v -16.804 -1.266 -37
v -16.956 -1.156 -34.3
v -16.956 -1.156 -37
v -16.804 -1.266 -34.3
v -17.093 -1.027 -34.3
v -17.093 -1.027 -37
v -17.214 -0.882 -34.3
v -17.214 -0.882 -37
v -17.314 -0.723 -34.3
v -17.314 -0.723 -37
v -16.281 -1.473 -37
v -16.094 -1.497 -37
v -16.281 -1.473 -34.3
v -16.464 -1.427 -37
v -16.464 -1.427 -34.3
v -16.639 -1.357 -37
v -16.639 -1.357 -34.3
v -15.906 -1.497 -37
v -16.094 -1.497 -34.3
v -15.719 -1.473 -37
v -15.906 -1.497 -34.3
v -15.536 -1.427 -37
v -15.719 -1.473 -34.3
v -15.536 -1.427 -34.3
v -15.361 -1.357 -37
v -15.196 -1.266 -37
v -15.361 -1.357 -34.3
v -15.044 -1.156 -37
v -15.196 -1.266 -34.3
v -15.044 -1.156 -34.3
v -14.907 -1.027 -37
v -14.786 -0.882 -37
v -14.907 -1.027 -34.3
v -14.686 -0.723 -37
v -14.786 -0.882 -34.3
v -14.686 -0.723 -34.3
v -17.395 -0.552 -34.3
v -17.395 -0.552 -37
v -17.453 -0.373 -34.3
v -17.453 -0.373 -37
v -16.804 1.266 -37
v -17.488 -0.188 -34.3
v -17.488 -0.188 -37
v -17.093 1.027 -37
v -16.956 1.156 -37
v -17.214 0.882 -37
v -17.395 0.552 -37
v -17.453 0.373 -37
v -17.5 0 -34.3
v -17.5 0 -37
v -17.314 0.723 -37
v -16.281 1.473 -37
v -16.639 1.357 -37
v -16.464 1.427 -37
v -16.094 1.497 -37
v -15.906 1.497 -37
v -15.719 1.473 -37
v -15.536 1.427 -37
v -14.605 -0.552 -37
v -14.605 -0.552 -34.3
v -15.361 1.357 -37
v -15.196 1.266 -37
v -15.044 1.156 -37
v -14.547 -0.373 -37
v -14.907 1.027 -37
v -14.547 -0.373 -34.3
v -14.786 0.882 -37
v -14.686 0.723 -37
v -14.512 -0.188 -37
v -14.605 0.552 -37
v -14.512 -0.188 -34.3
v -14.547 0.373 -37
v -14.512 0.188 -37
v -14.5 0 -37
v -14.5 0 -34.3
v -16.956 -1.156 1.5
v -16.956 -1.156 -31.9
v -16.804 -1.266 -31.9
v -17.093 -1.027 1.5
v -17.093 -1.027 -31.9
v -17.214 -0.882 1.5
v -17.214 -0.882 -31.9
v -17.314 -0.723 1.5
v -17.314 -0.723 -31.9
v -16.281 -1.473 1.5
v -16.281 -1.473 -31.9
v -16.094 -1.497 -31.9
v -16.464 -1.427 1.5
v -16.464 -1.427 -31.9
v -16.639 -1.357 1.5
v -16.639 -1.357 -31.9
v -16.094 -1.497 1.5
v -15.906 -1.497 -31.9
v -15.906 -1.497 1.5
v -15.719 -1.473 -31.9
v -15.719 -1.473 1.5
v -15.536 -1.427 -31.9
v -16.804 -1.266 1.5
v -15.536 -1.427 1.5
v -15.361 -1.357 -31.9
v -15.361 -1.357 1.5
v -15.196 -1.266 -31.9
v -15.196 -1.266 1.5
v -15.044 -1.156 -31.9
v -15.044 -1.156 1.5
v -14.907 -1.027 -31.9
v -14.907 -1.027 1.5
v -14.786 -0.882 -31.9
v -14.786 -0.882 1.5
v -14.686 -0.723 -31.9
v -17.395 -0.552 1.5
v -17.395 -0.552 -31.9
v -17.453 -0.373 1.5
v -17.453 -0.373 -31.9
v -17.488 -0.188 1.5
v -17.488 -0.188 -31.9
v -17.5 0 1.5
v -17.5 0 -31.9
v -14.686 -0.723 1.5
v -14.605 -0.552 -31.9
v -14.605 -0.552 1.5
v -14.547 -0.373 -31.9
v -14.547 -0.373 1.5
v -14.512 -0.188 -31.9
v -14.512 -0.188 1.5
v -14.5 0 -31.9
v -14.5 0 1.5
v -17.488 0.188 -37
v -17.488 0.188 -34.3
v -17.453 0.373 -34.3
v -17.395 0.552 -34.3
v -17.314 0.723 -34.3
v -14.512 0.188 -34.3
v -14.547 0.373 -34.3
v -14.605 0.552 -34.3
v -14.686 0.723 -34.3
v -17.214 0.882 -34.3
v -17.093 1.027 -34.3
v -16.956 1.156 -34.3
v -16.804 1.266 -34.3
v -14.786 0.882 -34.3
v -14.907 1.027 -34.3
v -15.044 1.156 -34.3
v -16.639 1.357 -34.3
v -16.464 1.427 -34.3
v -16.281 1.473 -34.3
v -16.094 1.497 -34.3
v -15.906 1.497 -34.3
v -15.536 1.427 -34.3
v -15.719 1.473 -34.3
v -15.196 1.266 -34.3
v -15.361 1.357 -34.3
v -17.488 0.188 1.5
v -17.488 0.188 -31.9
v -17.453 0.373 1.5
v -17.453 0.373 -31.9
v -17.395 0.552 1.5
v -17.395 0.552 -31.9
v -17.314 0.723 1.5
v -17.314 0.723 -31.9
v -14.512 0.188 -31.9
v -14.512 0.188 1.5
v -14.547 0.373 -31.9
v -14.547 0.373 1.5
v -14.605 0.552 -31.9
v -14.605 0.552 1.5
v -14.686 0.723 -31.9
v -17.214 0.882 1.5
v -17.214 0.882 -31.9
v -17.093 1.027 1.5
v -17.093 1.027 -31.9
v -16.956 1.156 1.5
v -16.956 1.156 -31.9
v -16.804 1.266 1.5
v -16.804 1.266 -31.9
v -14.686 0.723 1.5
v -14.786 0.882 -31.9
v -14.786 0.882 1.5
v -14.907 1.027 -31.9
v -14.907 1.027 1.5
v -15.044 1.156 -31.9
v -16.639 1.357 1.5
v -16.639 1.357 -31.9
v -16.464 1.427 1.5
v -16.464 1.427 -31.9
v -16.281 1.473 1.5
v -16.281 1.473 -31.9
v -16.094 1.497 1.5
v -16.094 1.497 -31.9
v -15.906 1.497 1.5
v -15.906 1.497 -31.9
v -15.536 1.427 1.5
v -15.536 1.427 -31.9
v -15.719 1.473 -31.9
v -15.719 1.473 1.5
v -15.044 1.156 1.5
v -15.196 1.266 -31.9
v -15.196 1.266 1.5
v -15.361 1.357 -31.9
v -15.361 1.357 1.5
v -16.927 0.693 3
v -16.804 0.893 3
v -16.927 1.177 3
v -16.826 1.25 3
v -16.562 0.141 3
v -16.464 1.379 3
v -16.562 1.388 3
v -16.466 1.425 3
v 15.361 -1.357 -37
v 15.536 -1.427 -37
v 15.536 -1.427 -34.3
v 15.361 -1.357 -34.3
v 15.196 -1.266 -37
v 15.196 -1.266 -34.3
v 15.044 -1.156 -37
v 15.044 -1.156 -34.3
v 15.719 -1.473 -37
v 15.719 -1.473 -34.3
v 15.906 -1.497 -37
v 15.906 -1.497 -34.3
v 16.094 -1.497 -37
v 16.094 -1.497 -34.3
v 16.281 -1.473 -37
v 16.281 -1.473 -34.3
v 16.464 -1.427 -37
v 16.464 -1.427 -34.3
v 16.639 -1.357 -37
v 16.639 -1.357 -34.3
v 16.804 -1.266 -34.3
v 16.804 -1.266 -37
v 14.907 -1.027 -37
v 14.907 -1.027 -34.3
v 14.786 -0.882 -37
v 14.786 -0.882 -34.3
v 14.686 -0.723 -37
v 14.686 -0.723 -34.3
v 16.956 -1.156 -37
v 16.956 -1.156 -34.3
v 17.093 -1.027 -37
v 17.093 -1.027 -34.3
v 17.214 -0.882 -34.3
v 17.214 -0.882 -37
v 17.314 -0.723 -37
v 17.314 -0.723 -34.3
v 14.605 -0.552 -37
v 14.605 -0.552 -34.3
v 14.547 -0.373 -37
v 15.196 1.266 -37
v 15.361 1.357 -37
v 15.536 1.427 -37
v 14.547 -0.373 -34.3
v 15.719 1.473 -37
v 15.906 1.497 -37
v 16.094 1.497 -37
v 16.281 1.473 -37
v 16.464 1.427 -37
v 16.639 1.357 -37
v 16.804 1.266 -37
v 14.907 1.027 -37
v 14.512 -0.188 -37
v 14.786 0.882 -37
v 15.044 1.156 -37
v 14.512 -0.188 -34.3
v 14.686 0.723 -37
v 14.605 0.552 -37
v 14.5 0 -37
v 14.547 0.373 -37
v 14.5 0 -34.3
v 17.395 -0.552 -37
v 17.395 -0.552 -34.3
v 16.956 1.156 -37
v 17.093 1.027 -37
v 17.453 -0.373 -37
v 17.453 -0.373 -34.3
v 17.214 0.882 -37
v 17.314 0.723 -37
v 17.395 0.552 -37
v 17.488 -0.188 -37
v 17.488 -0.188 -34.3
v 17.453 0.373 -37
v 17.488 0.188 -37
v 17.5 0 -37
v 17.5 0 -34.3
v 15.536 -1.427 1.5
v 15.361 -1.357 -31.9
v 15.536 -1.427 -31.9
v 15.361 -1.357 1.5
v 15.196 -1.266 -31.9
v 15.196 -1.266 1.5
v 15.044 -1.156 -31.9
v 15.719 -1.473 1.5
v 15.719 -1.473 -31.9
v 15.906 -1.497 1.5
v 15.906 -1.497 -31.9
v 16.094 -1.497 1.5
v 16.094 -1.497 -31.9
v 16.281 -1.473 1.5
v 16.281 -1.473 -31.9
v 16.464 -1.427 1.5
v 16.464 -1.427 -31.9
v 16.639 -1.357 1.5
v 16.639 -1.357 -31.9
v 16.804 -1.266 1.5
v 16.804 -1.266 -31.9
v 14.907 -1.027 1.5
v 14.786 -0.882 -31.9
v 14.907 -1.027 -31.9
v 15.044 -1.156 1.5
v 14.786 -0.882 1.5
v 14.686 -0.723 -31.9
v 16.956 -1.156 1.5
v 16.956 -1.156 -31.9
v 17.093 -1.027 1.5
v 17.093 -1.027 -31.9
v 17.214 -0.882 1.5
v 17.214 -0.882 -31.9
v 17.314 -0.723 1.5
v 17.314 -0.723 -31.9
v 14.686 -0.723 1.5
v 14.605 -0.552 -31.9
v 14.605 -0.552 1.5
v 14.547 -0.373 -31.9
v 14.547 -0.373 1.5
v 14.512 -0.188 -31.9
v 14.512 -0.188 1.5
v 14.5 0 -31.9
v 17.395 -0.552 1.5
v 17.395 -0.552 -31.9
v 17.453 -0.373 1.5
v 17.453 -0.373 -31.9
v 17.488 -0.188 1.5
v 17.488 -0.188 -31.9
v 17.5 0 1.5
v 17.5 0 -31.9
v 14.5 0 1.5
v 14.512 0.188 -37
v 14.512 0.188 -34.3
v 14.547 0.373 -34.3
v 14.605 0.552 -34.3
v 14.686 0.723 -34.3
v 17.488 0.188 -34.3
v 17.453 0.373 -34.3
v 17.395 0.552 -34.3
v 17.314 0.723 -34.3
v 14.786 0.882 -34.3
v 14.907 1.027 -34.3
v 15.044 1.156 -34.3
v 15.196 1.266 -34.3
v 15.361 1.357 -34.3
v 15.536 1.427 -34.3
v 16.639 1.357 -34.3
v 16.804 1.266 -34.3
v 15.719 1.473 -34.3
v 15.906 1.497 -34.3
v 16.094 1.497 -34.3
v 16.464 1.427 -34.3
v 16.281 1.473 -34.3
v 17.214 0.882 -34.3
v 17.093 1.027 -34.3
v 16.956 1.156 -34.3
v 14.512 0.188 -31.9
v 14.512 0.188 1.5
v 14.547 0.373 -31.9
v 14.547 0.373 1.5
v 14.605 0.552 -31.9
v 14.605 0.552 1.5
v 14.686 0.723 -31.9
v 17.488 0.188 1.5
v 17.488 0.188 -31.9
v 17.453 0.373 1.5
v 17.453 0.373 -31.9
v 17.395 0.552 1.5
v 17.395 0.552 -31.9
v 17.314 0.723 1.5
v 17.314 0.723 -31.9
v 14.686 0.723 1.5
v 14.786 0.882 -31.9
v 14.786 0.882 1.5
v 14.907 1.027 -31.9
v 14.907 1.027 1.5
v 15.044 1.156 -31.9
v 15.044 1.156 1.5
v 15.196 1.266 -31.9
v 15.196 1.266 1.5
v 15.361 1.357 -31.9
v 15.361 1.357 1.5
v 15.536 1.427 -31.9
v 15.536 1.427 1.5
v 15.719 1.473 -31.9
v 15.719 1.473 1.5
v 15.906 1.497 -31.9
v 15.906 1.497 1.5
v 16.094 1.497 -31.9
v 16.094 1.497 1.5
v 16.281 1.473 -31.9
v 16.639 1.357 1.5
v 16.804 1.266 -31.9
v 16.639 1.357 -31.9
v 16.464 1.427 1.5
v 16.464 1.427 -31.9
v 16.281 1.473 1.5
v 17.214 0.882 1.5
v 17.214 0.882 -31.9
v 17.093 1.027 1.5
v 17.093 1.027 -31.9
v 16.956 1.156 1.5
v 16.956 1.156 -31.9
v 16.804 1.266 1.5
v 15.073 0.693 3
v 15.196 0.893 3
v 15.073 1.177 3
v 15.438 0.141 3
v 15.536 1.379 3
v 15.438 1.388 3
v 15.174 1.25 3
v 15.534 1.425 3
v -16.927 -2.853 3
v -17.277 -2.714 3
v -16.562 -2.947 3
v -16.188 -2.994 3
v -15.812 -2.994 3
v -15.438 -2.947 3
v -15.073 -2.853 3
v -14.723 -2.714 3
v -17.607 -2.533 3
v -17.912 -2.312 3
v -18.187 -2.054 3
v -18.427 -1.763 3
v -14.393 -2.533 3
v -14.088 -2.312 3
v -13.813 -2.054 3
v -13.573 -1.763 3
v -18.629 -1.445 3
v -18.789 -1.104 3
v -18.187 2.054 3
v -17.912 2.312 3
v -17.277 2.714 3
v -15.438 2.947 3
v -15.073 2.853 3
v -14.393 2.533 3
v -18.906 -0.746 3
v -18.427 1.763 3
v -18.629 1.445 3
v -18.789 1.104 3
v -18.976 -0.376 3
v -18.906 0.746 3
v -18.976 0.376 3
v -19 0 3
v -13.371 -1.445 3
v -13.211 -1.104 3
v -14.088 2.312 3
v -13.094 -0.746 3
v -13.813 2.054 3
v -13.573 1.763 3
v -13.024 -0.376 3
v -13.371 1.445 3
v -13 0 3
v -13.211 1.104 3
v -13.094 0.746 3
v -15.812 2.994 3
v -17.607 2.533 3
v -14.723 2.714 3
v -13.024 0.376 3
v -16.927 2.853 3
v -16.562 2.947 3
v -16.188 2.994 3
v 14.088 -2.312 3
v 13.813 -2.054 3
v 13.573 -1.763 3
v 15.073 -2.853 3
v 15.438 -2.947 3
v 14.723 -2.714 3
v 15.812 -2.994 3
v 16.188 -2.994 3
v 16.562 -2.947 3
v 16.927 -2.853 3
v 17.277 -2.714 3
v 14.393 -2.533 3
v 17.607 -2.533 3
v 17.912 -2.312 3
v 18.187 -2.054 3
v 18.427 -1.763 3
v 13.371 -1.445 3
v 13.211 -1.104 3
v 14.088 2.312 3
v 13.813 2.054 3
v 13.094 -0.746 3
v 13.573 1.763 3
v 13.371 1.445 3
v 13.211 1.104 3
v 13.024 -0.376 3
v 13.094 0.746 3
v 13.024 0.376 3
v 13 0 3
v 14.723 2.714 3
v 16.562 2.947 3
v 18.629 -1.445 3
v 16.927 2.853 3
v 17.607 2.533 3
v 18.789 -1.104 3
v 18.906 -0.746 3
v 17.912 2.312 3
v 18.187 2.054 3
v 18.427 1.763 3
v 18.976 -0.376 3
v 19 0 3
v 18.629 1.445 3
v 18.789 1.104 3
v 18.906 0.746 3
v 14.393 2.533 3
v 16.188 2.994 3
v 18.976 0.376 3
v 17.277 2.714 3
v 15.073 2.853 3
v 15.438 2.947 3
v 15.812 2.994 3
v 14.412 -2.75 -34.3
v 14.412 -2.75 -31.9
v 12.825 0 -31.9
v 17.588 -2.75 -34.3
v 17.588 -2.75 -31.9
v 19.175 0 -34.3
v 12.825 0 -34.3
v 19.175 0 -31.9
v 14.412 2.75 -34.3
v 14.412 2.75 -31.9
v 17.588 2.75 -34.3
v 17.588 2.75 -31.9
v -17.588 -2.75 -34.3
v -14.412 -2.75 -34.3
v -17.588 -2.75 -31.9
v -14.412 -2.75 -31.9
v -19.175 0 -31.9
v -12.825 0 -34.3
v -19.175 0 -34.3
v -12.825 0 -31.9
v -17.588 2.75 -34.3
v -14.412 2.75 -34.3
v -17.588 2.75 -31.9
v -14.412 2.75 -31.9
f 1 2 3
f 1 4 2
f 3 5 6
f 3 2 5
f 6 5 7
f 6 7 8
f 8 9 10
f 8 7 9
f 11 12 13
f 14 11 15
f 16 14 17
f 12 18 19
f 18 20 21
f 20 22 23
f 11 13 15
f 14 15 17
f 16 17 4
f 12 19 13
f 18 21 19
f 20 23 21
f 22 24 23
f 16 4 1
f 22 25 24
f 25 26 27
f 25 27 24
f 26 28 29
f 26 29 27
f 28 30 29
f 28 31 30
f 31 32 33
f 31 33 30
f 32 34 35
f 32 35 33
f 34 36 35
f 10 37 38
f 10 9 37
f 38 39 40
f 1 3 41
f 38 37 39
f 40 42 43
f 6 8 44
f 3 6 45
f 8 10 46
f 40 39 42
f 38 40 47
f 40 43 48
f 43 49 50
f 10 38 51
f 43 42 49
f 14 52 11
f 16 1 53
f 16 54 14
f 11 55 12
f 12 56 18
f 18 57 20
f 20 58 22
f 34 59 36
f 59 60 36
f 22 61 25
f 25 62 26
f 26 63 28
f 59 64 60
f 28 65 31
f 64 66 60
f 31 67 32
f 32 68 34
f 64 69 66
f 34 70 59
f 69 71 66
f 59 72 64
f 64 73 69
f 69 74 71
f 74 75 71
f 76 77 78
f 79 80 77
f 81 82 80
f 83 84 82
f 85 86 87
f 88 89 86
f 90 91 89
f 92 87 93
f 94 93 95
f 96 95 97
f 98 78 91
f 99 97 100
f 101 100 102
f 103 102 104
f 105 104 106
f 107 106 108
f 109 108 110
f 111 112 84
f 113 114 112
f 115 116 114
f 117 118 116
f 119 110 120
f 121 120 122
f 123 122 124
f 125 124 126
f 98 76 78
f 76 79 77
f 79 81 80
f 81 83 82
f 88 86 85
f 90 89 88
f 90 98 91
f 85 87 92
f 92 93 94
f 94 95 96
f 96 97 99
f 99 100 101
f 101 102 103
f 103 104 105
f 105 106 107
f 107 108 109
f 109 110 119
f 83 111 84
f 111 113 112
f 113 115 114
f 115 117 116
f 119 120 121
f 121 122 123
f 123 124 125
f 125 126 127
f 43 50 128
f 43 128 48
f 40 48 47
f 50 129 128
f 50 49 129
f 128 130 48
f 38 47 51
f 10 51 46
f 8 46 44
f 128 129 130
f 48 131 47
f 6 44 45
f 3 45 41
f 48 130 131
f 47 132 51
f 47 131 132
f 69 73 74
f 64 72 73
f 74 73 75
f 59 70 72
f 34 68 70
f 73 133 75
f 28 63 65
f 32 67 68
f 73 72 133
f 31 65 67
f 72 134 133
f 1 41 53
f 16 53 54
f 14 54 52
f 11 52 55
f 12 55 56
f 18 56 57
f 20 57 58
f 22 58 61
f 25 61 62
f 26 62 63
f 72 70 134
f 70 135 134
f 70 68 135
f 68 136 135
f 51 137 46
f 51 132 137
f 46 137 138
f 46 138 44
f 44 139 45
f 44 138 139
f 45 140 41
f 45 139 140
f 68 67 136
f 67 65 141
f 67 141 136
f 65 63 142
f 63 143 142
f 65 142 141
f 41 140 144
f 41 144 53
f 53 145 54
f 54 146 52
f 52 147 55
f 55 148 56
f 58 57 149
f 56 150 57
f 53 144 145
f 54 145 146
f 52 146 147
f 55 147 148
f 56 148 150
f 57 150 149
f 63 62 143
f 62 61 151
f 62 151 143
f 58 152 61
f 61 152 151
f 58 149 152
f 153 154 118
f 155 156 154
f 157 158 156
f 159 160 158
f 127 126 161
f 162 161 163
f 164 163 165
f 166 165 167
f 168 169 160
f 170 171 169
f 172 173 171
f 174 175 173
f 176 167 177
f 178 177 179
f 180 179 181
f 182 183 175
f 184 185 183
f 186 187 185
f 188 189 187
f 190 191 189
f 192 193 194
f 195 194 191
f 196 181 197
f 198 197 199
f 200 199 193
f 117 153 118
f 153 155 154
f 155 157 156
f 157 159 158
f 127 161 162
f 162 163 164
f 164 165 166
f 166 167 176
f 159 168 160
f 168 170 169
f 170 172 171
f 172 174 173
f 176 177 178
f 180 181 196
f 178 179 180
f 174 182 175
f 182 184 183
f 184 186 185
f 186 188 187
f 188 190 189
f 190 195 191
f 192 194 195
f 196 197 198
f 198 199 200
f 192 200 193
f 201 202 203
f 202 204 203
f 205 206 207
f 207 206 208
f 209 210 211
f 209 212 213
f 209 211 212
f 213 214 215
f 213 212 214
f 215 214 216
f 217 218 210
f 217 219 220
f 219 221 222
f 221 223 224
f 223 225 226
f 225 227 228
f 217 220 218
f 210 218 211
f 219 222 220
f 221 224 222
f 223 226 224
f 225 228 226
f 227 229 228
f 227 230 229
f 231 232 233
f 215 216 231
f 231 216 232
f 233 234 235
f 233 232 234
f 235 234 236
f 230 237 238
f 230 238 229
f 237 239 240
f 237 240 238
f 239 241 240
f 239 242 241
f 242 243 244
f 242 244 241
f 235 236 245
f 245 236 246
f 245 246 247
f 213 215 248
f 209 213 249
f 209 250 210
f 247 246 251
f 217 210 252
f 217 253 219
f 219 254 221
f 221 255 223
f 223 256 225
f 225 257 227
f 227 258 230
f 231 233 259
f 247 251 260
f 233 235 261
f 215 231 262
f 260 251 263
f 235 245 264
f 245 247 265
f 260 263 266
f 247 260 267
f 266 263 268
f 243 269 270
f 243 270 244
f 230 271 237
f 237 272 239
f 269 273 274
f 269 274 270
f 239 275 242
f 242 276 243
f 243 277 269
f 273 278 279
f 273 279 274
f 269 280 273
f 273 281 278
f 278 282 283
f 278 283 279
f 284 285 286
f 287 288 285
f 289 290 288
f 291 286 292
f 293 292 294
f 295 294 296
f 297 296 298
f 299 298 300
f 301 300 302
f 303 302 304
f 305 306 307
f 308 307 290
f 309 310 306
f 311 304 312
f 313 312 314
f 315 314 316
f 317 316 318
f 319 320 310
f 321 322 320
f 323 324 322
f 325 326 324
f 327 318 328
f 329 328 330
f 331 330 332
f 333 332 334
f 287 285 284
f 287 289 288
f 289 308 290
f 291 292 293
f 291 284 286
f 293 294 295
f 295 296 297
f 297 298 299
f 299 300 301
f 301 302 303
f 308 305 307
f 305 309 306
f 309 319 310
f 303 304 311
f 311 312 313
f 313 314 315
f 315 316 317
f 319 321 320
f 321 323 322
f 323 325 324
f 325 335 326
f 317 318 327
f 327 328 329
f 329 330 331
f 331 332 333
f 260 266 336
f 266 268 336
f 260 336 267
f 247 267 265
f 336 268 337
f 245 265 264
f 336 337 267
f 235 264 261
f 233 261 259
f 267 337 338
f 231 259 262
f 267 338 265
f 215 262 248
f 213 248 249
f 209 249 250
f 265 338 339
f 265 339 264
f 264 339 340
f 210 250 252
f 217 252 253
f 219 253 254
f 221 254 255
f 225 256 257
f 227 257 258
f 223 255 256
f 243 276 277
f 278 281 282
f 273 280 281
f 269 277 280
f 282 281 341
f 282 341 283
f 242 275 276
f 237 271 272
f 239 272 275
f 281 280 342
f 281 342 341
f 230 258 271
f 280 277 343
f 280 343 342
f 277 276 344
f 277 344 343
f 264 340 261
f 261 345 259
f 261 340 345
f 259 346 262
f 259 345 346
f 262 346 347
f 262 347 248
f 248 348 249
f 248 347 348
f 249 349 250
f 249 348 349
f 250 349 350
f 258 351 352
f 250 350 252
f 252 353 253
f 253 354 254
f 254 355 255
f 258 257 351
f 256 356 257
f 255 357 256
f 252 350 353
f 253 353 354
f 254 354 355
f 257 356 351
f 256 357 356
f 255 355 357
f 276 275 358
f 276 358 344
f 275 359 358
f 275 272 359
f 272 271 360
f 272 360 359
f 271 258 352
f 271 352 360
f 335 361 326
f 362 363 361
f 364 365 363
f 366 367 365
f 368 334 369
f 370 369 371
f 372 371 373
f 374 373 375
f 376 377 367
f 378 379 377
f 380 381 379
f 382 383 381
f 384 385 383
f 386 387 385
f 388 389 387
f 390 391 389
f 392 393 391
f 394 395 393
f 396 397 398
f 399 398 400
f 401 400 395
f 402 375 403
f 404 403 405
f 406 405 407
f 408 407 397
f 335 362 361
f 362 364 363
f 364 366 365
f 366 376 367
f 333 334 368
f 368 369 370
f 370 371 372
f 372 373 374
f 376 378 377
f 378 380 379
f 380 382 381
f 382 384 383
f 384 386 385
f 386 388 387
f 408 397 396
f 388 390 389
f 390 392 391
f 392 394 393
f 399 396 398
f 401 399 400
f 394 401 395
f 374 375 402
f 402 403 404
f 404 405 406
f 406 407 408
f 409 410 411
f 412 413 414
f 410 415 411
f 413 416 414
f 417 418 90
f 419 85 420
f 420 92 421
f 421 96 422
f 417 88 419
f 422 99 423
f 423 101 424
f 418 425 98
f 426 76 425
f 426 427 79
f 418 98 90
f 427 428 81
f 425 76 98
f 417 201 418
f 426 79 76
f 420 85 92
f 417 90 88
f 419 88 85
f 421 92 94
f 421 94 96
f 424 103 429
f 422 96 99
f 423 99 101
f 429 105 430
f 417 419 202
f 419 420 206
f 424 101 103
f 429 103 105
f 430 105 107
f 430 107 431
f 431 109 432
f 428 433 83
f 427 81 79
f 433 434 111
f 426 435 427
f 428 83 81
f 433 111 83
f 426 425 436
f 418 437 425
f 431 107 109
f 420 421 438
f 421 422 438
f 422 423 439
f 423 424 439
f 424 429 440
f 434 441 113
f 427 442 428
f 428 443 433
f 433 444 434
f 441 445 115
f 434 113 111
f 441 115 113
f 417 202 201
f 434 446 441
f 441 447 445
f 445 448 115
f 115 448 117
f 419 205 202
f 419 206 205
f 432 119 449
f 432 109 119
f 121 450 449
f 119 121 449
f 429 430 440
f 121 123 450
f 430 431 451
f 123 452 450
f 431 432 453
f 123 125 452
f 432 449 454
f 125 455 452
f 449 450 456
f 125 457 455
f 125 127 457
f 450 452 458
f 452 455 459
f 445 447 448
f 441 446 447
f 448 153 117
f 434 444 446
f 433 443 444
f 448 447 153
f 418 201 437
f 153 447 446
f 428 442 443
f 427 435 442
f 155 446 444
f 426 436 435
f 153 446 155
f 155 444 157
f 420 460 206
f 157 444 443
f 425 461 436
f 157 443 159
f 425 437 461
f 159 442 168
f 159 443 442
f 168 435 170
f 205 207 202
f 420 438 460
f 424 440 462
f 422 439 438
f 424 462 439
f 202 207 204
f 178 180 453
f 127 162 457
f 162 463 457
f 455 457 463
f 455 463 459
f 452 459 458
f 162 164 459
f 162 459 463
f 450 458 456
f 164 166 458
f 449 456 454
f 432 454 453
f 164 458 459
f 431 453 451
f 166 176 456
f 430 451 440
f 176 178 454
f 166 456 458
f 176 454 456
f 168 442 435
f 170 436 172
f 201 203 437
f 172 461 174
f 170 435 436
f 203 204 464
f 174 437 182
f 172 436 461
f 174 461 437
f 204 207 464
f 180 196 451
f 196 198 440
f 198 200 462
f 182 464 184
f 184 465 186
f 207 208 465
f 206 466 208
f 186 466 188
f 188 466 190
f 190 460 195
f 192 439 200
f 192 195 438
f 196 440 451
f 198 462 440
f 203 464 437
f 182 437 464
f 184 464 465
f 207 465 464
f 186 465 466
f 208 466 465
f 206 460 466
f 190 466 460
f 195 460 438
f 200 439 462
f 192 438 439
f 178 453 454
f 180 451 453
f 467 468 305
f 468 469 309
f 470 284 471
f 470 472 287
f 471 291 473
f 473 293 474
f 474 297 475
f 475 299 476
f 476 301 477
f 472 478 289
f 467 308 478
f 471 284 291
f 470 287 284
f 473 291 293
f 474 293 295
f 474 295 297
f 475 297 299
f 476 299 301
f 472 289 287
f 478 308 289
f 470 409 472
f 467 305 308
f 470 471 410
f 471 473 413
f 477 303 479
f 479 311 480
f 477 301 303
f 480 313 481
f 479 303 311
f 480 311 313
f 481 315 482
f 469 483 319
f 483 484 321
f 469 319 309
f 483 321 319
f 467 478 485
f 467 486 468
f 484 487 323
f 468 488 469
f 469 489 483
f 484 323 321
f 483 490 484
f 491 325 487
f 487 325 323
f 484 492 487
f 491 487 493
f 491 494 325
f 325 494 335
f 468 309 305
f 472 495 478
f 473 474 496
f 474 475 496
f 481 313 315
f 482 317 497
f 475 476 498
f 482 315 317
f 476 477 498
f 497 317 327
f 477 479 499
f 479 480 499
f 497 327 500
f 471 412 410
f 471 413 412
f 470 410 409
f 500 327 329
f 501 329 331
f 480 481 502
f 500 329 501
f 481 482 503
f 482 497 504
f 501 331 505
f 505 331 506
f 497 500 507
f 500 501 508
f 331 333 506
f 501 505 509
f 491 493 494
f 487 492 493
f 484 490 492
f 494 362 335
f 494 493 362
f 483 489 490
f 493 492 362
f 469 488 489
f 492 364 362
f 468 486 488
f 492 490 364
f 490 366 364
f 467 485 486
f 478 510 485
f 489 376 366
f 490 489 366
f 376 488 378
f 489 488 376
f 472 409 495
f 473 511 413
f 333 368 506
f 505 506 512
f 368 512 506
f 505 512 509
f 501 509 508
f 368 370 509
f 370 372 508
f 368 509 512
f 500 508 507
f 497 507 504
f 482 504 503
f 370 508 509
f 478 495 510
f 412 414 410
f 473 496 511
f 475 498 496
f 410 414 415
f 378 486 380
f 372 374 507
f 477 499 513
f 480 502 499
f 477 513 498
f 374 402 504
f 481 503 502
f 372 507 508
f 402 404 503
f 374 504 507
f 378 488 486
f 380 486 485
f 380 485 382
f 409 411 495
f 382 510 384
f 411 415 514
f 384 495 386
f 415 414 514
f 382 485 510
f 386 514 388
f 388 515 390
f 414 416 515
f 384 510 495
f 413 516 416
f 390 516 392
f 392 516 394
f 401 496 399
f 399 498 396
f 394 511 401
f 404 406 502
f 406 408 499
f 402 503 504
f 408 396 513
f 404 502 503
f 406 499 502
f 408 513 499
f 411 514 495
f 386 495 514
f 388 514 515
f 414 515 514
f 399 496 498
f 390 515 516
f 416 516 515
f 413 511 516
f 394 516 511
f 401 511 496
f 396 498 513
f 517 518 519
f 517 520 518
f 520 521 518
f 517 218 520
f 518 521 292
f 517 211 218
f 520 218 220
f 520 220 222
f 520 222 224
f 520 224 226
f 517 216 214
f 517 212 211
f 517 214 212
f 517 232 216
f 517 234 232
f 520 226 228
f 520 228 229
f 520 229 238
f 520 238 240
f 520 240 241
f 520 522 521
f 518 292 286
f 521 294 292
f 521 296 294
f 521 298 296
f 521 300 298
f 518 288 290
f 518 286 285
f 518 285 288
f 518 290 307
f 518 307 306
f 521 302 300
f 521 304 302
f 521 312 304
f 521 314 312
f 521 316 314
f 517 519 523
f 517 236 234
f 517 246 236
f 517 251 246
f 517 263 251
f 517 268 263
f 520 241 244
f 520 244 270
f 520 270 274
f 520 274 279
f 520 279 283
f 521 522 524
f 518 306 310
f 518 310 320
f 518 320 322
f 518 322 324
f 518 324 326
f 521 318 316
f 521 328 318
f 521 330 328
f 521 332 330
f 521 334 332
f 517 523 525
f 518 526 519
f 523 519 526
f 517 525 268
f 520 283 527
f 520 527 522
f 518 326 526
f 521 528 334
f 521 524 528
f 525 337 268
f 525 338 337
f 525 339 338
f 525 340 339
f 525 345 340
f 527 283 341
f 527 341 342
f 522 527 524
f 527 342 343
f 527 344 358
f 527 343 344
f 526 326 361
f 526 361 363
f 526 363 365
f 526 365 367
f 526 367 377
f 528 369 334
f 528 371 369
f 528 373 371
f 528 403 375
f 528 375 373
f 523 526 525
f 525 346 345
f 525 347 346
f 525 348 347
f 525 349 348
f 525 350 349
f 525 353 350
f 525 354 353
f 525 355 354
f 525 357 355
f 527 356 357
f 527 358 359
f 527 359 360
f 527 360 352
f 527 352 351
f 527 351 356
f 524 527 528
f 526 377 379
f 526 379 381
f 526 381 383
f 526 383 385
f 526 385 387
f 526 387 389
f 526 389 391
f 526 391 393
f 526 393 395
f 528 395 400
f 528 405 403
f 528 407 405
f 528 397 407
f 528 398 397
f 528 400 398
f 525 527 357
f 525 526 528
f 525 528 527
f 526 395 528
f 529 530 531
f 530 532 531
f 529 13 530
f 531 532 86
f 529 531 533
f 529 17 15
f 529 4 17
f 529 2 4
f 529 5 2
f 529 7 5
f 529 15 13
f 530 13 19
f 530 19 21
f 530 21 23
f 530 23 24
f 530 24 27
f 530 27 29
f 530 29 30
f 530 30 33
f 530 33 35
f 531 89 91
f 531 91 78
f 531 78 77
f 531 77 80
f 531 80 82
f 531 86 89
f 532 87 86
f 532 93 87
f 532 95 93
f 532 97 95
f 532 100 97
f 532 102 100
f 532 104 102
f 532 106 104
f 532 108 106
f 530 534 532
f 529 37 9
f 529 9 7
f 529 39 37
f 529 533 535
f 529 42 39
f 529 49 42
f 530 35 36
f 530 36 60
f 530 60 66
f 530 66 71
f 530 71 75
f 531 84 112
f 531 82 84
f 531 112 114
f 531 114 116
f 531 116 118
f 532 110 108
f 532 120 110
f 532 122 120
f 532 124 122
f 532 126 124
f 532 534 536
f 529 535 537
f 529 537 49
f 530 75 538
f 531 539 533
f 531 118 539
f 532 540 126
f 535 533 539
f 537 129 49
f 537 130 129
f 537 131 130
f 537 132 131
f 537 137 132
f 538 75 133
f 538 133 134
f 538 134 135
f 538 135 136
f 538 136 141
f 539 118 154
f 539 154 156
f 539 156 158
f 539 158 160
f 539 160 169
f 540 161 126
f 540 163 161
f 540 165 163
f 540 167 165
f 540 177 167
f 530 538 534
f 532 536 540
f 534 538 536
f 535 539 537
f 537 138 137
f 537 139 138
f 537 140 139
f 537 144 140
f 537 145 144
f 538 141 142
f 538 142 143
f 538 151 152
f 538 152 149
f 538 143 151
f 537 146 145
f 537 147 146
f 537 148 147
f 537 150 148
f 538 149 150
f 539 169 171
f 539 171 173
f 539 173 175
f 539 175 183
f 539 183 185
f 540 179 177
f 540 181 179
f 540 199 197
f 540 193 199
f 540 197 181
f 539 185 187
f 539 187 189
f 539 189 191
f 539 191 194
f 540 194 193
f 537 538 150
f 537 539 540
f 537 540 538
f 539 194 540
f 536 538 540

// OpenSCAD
$fn = 50;

difference() {
	union() {
		translate(v = [-16, 0, 3]) {
			rotate(a = [0, 0, 0]) {
				difference() {
					union() {
						translate(v = [0, 0, -40.0]) {
							cylinder(h = 40, r = 1.5);
						}
						translate(v = [0, 0, -1.5]) {
							cylinder(h = 1.5, r1 = 1.5, r2 = 3);
						}
					}
					union();
				}
			}
		}
		translate(v = [-16, 0, -34.3]) {
			rotate(a = [0, 0, 0]) {
				difference() {
					union() {
						linear_extrude(height = 2.4) {
							polygon(points = [[3.1754264805429417, 0.0], [1.5877132402714713, 2.75], [-1.5877132402714702, 2.7500000000000004], [-3.1754264805429417, 3.888775875324659e-16], [-1.5877132402714722, -2.7499999999999996], [1.5877132402714687, -2.7500000000000013]]);
						}
					}
					union();
				}
			}
		}
		translate(v = [16, 0, 3]) {
			rotate(a = [0, 0, 0]) {
				difference() {
					union() {
						translate(v = [0, 0, -40.0]) {
							cylinder(h = 40, r = 1.5);
						}
						translate(v = [0, 0, -1.5]) {
							cylinder(h = 1.5, r1 = 1.5, r2 = 3);
						}
					}
					union();
				}
			}
		}
		translate(v = [16, 0, -34.3]) {
			rotate(a = [0, 0, 0]) {
				difference() {
					union() {
						linear_extrude(height = 2.4) {
							polygon(points = [[3.1754264805429417, 0.0], [1.5877132402714713, 2.75], [-1.5877132402714702, 2.7500000000000004], [-3.1754264805429417, 3.888775875324659e-16], [-1.5877132402714722, -2.7499999999999996], [1.5877132402714687, -2.7500000000000013]]);
						}
					}
					union();
				}
			}
		}
	}
	union();
}
